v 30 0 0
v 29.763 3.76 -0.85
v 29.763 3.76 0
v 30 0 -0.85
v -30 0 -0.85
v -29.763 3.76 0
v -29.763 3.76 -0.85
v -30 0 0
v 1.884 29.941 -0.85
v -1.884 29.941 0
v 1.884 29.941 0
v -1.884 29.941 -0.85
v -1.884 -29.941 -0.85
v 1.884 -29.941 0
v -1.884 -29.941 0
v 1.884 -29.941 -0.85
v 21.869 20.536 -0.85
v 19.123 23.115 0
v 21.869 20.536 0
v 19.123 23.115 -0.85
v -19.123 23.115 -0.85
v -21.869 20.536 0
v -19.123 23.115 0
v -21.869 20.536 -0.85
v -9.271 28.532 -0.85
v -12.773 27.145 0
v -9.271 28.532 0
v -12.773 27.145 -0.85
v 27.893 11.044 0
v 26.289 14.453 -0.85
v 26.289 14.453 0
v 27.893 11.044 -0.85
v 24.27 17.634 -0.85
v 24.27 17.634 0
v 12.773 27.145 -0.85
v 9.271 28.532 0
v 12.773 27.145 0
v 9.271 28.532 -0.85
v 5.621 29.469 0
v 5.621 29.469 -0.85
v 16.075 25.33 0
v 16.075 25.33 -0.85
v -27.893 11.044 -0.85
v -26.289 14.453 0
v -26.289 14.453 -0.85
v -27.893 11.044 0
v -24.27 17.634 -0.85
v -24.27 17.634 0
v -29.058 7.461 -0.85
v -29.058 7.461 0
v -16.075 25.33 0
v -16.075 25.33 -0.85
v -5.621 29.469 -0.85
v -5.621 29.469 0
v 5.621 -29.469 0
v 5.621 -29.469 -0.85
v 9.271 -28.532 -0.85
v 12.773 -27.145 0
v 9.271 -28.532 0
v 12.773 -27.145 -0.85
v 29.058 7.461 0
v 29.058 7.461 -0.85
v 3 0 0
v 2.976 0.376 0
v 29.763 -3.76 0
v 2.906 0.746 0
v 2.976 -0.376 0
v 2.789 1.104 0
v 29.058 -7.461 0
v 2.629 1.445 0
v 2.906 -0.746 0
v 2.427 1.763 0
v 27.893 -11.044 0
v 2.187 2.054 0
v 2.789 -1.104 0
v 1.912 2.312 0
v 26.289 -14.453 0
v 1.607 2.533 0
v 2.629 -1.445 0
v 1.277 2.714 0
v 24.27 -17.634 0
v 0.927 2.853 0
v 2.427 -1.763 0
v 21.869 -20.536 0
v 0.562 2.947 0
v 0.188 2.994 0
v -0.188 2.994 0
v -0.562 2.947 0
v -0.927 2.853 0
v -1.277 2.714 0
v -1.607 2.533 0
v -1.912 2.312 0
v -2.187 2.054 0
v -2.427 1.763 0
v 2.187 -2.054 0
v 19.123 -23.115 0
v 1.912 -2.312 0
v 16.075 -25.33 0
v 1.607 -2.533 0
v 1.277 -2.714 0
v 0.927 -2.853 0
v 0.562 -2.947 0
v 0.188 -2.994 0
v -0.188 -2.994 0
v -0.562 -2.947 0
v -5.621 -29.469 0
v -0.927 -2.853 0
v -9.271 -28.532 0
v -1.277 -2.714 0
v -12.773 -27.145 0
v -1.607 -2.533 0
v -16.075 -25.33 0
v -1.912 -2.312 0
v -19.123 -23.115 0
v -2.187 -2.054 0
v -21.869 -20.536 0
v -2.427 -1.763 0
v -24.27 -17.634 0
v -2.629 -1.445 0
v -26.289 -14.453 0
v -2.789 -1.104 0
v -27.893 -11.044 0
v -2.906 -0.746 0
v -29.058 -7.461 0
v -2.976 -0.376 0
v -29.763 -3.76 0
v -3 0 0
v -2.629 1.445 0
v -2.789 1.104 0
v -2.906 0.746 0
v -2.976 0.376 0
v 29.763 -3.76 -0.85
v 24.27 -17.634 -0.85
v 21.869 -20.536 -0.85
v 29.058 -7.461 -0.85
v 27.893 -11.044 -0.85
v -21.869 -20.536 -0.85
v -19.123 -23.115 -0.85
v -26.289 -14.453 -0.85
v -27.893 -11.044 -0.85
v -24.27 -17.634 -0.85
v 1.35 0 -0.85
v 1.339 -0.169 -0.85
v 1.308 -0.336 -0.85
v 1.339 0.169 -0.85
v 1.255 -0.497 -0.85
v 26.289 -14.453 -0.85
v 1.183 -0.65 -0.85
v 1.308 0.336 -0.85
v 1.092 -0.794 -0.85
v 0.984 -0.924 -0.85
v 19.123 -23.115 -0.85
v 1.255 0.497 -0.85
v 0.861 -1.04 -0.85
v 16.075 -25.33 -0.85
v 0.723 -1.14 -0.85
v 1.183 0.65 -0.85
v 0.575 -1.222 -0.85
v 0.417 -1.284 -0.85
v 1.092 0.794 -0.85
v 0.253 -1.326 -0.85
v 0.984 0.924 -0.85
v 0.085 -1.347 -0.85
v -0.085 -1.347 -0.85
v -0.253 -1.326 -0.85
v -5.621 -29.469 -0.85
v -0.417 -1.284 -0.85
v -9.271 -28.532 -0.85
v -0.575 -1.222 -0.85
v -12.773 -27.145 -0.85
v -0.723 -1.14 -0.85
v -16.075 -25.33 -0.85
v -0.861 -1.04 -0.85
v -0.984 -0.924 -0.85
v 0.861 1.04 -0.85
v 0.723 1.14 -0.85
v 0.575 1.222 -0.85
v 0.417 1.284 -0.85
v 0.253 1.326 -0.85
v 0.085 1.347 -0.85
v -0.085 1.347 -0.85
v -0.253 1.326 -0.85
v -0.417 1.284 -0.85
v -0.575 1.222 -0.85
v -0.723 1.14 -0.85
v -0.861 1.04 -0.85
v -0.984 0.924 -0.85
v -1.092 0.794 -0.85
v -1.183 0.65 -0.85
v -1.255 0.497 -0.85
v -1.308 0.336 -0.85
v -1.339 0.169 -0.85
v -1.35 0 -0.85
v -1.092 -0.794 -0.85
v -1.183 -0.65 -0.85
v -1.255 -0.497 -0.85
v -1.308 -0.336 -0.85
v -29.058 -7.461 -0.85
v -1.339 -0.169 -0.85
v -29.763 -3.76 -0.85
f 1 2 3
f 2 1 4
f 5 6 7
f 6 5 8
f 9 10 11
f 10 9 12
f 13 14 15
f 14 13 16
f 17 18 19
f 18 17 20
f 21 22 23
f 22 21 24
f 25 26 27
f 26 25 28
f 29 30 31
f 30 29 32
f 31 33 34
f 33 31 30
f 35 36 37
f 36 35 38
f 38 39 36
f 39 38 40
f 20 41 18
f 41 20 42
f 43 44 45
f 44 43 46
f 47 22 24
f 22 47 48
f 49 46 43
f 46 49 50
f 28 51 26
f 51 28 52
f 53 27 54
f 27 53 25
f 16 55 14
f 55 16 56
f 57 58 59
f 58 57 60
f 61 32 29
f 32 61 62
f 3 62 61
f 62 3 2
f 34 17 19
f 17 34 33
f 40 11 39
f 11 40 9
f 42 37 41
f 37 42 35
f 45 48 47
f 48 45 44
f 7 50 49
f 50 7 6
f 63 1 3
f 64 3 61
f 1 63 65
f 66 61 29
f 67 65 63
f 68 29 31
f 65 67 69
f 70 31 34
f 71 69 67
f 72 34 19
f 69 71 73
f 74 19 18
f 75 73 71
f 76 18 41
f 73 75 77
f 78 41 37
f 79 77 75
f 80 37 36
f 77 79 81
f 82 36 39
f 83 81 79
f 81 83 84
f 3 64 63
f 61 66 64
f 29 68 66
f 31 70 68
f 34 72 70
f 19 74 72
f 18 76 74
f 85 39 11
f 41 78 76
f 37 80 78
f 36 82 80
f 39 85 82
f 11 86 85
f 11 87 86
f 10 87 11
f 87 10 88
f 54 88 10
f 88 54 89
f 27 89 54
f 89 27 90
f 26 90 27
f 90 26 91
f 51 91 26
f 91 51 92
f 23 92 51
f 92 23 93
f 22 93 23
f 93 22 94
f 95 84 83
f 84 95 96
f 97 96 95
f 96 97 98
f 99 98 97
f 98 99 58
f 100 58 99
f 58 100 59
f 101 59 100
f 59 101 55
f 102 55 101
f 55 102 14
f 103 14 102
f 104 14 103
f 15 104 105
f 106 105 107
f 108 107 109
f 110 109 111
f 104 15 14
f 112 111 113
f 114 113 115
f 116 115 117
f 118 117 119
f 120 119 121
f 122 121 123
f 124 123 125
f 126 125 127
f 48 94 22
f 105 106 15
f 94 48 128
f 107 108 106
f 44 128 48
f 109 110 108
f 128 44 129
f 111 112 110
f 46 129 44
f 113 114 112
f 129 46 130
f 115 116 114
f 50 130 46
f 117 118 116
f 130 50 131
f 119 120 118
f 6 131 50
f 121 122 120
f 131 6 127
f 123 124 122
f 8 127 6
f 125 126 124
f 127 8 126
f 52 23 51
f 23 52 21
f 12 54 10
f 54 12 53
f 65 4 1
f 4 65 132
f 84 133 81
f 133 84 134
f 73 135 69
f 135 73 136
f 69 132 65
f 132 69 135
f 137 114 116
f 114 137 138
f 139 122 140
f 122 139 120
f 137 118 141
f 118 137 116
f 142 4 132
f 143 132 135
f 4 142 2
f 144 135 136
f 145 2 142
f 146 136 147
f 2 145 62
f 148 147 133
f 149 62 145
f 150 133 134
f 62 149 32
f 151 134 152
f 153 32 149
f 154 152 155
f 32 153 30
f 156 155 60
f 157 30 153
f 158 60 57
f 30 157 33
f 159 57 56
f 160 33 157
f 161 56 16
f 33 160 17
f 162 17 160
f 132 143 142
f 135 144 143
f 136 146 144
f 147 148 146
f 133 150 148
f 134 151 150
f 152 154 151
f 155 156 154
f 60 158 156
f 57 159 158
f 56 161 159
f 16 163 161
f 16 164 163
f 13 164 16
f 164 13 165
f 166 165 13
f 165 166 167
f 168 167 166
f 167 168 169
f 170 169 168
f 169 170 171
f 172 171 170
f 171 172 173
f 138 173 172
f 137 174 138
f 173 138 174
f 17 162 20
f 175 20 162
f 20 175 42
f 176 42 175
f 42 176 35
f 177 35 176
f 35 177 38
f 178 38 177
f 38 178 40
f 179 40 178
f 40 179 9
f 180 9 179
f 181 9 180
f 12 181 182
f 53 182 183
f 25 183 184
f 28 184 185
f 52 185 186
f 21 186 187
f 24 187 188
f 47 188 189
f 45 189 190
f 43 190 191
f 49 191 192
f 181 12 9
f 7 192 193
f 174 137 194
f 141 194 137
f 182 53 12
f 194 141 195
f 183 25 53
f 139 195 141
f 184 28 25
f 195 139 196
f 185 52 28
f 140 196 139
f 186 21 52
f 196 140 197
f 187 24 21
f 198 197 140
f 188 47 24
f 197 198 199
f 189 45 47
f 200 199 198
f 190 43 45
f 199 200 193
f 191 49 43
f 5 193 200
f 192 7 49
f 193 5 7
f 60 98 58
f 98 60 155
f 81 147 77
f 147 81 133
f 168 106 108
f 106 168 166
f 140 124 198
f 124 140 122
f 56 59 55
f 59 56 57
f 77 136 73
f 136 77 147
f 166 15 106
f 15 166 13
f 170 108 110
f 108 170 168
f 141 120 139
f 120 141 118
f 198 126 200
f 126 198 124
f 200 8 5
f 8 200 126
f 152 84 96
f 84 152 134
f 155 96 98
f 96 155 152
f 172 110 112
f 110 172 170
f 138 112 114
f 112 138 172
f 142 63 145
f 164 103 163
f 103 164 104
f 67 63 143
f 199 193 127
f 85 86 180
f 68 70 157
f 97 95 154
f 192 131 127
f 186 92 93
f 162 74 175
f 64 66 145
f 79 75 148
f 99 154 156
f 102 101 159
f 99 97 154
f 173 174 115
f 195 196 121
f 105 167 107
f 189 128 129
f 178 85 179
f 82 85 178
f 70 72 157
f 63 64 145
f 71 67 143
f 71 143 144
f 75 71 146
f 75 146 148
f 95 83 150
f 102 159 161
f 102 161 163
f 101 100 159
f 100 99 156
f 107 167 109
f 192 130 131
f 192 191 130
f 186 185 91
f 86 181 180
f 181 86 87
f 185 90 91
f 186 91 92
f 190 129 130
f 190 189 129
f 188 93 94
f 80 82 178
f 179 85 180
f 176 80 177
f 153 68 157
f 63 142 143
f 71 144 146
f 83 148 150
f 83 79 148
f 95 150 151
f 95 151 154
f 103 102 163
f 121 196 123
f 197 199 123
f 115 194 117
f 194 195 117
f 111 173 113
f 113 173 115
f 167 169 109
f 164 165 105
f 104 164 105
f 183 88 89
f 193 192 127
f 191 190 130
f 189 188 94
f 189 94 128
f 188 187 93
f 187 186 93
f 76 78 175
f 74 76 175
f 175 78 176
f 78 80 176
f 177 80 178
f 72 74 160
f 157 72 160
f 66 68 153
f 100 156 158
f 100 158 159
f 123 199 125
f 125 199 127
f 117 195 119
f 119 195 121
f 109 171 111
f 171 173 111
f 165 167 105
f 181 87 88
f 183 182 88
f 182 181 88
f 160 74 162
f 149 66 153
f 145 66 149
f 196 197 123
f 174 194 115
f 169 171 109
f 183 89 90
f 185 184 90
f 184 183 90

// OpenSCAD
$fn = 50;


difference() {
	union() {
		translate(v = [0, 0, -0.8500000000]) {
			cylinder(h = 0.8500000000, r = 30.0000000000);
		}
		translate(v = [0, 0, -0.8500000000]) {
			cylinder(h = 0.8500000000, r = 2.8750000000);
		}
	}
	union() {
		translate(v = [0, 0, 0]) {
			rotate(a = [0, 0, 0]) {
				difference() {
					union() {
						#translate(v = [0, 0, -0.8500000000]) {
							cylinder(h = 0.8500000000, r = 1.0000000000);
						}
						#translate(v = [0, 0, -0.8500000000]) {
							cylinder(h = 0.8500000000, r1 = 1.3500000000, r2 = 3.0000000000);
						}
						#translate(v = [0, 0, -0.8500000000]) {
							cylinder(h = 0.8500000000, r = 1.3500000000);
						}
						#translate(v = [0, 0, -0.8500000000]) {
							cylinder(h = 0.8500000000, r = 1.0000000000);
						}
					}
					union();
				}
			}
		}
	}
}
